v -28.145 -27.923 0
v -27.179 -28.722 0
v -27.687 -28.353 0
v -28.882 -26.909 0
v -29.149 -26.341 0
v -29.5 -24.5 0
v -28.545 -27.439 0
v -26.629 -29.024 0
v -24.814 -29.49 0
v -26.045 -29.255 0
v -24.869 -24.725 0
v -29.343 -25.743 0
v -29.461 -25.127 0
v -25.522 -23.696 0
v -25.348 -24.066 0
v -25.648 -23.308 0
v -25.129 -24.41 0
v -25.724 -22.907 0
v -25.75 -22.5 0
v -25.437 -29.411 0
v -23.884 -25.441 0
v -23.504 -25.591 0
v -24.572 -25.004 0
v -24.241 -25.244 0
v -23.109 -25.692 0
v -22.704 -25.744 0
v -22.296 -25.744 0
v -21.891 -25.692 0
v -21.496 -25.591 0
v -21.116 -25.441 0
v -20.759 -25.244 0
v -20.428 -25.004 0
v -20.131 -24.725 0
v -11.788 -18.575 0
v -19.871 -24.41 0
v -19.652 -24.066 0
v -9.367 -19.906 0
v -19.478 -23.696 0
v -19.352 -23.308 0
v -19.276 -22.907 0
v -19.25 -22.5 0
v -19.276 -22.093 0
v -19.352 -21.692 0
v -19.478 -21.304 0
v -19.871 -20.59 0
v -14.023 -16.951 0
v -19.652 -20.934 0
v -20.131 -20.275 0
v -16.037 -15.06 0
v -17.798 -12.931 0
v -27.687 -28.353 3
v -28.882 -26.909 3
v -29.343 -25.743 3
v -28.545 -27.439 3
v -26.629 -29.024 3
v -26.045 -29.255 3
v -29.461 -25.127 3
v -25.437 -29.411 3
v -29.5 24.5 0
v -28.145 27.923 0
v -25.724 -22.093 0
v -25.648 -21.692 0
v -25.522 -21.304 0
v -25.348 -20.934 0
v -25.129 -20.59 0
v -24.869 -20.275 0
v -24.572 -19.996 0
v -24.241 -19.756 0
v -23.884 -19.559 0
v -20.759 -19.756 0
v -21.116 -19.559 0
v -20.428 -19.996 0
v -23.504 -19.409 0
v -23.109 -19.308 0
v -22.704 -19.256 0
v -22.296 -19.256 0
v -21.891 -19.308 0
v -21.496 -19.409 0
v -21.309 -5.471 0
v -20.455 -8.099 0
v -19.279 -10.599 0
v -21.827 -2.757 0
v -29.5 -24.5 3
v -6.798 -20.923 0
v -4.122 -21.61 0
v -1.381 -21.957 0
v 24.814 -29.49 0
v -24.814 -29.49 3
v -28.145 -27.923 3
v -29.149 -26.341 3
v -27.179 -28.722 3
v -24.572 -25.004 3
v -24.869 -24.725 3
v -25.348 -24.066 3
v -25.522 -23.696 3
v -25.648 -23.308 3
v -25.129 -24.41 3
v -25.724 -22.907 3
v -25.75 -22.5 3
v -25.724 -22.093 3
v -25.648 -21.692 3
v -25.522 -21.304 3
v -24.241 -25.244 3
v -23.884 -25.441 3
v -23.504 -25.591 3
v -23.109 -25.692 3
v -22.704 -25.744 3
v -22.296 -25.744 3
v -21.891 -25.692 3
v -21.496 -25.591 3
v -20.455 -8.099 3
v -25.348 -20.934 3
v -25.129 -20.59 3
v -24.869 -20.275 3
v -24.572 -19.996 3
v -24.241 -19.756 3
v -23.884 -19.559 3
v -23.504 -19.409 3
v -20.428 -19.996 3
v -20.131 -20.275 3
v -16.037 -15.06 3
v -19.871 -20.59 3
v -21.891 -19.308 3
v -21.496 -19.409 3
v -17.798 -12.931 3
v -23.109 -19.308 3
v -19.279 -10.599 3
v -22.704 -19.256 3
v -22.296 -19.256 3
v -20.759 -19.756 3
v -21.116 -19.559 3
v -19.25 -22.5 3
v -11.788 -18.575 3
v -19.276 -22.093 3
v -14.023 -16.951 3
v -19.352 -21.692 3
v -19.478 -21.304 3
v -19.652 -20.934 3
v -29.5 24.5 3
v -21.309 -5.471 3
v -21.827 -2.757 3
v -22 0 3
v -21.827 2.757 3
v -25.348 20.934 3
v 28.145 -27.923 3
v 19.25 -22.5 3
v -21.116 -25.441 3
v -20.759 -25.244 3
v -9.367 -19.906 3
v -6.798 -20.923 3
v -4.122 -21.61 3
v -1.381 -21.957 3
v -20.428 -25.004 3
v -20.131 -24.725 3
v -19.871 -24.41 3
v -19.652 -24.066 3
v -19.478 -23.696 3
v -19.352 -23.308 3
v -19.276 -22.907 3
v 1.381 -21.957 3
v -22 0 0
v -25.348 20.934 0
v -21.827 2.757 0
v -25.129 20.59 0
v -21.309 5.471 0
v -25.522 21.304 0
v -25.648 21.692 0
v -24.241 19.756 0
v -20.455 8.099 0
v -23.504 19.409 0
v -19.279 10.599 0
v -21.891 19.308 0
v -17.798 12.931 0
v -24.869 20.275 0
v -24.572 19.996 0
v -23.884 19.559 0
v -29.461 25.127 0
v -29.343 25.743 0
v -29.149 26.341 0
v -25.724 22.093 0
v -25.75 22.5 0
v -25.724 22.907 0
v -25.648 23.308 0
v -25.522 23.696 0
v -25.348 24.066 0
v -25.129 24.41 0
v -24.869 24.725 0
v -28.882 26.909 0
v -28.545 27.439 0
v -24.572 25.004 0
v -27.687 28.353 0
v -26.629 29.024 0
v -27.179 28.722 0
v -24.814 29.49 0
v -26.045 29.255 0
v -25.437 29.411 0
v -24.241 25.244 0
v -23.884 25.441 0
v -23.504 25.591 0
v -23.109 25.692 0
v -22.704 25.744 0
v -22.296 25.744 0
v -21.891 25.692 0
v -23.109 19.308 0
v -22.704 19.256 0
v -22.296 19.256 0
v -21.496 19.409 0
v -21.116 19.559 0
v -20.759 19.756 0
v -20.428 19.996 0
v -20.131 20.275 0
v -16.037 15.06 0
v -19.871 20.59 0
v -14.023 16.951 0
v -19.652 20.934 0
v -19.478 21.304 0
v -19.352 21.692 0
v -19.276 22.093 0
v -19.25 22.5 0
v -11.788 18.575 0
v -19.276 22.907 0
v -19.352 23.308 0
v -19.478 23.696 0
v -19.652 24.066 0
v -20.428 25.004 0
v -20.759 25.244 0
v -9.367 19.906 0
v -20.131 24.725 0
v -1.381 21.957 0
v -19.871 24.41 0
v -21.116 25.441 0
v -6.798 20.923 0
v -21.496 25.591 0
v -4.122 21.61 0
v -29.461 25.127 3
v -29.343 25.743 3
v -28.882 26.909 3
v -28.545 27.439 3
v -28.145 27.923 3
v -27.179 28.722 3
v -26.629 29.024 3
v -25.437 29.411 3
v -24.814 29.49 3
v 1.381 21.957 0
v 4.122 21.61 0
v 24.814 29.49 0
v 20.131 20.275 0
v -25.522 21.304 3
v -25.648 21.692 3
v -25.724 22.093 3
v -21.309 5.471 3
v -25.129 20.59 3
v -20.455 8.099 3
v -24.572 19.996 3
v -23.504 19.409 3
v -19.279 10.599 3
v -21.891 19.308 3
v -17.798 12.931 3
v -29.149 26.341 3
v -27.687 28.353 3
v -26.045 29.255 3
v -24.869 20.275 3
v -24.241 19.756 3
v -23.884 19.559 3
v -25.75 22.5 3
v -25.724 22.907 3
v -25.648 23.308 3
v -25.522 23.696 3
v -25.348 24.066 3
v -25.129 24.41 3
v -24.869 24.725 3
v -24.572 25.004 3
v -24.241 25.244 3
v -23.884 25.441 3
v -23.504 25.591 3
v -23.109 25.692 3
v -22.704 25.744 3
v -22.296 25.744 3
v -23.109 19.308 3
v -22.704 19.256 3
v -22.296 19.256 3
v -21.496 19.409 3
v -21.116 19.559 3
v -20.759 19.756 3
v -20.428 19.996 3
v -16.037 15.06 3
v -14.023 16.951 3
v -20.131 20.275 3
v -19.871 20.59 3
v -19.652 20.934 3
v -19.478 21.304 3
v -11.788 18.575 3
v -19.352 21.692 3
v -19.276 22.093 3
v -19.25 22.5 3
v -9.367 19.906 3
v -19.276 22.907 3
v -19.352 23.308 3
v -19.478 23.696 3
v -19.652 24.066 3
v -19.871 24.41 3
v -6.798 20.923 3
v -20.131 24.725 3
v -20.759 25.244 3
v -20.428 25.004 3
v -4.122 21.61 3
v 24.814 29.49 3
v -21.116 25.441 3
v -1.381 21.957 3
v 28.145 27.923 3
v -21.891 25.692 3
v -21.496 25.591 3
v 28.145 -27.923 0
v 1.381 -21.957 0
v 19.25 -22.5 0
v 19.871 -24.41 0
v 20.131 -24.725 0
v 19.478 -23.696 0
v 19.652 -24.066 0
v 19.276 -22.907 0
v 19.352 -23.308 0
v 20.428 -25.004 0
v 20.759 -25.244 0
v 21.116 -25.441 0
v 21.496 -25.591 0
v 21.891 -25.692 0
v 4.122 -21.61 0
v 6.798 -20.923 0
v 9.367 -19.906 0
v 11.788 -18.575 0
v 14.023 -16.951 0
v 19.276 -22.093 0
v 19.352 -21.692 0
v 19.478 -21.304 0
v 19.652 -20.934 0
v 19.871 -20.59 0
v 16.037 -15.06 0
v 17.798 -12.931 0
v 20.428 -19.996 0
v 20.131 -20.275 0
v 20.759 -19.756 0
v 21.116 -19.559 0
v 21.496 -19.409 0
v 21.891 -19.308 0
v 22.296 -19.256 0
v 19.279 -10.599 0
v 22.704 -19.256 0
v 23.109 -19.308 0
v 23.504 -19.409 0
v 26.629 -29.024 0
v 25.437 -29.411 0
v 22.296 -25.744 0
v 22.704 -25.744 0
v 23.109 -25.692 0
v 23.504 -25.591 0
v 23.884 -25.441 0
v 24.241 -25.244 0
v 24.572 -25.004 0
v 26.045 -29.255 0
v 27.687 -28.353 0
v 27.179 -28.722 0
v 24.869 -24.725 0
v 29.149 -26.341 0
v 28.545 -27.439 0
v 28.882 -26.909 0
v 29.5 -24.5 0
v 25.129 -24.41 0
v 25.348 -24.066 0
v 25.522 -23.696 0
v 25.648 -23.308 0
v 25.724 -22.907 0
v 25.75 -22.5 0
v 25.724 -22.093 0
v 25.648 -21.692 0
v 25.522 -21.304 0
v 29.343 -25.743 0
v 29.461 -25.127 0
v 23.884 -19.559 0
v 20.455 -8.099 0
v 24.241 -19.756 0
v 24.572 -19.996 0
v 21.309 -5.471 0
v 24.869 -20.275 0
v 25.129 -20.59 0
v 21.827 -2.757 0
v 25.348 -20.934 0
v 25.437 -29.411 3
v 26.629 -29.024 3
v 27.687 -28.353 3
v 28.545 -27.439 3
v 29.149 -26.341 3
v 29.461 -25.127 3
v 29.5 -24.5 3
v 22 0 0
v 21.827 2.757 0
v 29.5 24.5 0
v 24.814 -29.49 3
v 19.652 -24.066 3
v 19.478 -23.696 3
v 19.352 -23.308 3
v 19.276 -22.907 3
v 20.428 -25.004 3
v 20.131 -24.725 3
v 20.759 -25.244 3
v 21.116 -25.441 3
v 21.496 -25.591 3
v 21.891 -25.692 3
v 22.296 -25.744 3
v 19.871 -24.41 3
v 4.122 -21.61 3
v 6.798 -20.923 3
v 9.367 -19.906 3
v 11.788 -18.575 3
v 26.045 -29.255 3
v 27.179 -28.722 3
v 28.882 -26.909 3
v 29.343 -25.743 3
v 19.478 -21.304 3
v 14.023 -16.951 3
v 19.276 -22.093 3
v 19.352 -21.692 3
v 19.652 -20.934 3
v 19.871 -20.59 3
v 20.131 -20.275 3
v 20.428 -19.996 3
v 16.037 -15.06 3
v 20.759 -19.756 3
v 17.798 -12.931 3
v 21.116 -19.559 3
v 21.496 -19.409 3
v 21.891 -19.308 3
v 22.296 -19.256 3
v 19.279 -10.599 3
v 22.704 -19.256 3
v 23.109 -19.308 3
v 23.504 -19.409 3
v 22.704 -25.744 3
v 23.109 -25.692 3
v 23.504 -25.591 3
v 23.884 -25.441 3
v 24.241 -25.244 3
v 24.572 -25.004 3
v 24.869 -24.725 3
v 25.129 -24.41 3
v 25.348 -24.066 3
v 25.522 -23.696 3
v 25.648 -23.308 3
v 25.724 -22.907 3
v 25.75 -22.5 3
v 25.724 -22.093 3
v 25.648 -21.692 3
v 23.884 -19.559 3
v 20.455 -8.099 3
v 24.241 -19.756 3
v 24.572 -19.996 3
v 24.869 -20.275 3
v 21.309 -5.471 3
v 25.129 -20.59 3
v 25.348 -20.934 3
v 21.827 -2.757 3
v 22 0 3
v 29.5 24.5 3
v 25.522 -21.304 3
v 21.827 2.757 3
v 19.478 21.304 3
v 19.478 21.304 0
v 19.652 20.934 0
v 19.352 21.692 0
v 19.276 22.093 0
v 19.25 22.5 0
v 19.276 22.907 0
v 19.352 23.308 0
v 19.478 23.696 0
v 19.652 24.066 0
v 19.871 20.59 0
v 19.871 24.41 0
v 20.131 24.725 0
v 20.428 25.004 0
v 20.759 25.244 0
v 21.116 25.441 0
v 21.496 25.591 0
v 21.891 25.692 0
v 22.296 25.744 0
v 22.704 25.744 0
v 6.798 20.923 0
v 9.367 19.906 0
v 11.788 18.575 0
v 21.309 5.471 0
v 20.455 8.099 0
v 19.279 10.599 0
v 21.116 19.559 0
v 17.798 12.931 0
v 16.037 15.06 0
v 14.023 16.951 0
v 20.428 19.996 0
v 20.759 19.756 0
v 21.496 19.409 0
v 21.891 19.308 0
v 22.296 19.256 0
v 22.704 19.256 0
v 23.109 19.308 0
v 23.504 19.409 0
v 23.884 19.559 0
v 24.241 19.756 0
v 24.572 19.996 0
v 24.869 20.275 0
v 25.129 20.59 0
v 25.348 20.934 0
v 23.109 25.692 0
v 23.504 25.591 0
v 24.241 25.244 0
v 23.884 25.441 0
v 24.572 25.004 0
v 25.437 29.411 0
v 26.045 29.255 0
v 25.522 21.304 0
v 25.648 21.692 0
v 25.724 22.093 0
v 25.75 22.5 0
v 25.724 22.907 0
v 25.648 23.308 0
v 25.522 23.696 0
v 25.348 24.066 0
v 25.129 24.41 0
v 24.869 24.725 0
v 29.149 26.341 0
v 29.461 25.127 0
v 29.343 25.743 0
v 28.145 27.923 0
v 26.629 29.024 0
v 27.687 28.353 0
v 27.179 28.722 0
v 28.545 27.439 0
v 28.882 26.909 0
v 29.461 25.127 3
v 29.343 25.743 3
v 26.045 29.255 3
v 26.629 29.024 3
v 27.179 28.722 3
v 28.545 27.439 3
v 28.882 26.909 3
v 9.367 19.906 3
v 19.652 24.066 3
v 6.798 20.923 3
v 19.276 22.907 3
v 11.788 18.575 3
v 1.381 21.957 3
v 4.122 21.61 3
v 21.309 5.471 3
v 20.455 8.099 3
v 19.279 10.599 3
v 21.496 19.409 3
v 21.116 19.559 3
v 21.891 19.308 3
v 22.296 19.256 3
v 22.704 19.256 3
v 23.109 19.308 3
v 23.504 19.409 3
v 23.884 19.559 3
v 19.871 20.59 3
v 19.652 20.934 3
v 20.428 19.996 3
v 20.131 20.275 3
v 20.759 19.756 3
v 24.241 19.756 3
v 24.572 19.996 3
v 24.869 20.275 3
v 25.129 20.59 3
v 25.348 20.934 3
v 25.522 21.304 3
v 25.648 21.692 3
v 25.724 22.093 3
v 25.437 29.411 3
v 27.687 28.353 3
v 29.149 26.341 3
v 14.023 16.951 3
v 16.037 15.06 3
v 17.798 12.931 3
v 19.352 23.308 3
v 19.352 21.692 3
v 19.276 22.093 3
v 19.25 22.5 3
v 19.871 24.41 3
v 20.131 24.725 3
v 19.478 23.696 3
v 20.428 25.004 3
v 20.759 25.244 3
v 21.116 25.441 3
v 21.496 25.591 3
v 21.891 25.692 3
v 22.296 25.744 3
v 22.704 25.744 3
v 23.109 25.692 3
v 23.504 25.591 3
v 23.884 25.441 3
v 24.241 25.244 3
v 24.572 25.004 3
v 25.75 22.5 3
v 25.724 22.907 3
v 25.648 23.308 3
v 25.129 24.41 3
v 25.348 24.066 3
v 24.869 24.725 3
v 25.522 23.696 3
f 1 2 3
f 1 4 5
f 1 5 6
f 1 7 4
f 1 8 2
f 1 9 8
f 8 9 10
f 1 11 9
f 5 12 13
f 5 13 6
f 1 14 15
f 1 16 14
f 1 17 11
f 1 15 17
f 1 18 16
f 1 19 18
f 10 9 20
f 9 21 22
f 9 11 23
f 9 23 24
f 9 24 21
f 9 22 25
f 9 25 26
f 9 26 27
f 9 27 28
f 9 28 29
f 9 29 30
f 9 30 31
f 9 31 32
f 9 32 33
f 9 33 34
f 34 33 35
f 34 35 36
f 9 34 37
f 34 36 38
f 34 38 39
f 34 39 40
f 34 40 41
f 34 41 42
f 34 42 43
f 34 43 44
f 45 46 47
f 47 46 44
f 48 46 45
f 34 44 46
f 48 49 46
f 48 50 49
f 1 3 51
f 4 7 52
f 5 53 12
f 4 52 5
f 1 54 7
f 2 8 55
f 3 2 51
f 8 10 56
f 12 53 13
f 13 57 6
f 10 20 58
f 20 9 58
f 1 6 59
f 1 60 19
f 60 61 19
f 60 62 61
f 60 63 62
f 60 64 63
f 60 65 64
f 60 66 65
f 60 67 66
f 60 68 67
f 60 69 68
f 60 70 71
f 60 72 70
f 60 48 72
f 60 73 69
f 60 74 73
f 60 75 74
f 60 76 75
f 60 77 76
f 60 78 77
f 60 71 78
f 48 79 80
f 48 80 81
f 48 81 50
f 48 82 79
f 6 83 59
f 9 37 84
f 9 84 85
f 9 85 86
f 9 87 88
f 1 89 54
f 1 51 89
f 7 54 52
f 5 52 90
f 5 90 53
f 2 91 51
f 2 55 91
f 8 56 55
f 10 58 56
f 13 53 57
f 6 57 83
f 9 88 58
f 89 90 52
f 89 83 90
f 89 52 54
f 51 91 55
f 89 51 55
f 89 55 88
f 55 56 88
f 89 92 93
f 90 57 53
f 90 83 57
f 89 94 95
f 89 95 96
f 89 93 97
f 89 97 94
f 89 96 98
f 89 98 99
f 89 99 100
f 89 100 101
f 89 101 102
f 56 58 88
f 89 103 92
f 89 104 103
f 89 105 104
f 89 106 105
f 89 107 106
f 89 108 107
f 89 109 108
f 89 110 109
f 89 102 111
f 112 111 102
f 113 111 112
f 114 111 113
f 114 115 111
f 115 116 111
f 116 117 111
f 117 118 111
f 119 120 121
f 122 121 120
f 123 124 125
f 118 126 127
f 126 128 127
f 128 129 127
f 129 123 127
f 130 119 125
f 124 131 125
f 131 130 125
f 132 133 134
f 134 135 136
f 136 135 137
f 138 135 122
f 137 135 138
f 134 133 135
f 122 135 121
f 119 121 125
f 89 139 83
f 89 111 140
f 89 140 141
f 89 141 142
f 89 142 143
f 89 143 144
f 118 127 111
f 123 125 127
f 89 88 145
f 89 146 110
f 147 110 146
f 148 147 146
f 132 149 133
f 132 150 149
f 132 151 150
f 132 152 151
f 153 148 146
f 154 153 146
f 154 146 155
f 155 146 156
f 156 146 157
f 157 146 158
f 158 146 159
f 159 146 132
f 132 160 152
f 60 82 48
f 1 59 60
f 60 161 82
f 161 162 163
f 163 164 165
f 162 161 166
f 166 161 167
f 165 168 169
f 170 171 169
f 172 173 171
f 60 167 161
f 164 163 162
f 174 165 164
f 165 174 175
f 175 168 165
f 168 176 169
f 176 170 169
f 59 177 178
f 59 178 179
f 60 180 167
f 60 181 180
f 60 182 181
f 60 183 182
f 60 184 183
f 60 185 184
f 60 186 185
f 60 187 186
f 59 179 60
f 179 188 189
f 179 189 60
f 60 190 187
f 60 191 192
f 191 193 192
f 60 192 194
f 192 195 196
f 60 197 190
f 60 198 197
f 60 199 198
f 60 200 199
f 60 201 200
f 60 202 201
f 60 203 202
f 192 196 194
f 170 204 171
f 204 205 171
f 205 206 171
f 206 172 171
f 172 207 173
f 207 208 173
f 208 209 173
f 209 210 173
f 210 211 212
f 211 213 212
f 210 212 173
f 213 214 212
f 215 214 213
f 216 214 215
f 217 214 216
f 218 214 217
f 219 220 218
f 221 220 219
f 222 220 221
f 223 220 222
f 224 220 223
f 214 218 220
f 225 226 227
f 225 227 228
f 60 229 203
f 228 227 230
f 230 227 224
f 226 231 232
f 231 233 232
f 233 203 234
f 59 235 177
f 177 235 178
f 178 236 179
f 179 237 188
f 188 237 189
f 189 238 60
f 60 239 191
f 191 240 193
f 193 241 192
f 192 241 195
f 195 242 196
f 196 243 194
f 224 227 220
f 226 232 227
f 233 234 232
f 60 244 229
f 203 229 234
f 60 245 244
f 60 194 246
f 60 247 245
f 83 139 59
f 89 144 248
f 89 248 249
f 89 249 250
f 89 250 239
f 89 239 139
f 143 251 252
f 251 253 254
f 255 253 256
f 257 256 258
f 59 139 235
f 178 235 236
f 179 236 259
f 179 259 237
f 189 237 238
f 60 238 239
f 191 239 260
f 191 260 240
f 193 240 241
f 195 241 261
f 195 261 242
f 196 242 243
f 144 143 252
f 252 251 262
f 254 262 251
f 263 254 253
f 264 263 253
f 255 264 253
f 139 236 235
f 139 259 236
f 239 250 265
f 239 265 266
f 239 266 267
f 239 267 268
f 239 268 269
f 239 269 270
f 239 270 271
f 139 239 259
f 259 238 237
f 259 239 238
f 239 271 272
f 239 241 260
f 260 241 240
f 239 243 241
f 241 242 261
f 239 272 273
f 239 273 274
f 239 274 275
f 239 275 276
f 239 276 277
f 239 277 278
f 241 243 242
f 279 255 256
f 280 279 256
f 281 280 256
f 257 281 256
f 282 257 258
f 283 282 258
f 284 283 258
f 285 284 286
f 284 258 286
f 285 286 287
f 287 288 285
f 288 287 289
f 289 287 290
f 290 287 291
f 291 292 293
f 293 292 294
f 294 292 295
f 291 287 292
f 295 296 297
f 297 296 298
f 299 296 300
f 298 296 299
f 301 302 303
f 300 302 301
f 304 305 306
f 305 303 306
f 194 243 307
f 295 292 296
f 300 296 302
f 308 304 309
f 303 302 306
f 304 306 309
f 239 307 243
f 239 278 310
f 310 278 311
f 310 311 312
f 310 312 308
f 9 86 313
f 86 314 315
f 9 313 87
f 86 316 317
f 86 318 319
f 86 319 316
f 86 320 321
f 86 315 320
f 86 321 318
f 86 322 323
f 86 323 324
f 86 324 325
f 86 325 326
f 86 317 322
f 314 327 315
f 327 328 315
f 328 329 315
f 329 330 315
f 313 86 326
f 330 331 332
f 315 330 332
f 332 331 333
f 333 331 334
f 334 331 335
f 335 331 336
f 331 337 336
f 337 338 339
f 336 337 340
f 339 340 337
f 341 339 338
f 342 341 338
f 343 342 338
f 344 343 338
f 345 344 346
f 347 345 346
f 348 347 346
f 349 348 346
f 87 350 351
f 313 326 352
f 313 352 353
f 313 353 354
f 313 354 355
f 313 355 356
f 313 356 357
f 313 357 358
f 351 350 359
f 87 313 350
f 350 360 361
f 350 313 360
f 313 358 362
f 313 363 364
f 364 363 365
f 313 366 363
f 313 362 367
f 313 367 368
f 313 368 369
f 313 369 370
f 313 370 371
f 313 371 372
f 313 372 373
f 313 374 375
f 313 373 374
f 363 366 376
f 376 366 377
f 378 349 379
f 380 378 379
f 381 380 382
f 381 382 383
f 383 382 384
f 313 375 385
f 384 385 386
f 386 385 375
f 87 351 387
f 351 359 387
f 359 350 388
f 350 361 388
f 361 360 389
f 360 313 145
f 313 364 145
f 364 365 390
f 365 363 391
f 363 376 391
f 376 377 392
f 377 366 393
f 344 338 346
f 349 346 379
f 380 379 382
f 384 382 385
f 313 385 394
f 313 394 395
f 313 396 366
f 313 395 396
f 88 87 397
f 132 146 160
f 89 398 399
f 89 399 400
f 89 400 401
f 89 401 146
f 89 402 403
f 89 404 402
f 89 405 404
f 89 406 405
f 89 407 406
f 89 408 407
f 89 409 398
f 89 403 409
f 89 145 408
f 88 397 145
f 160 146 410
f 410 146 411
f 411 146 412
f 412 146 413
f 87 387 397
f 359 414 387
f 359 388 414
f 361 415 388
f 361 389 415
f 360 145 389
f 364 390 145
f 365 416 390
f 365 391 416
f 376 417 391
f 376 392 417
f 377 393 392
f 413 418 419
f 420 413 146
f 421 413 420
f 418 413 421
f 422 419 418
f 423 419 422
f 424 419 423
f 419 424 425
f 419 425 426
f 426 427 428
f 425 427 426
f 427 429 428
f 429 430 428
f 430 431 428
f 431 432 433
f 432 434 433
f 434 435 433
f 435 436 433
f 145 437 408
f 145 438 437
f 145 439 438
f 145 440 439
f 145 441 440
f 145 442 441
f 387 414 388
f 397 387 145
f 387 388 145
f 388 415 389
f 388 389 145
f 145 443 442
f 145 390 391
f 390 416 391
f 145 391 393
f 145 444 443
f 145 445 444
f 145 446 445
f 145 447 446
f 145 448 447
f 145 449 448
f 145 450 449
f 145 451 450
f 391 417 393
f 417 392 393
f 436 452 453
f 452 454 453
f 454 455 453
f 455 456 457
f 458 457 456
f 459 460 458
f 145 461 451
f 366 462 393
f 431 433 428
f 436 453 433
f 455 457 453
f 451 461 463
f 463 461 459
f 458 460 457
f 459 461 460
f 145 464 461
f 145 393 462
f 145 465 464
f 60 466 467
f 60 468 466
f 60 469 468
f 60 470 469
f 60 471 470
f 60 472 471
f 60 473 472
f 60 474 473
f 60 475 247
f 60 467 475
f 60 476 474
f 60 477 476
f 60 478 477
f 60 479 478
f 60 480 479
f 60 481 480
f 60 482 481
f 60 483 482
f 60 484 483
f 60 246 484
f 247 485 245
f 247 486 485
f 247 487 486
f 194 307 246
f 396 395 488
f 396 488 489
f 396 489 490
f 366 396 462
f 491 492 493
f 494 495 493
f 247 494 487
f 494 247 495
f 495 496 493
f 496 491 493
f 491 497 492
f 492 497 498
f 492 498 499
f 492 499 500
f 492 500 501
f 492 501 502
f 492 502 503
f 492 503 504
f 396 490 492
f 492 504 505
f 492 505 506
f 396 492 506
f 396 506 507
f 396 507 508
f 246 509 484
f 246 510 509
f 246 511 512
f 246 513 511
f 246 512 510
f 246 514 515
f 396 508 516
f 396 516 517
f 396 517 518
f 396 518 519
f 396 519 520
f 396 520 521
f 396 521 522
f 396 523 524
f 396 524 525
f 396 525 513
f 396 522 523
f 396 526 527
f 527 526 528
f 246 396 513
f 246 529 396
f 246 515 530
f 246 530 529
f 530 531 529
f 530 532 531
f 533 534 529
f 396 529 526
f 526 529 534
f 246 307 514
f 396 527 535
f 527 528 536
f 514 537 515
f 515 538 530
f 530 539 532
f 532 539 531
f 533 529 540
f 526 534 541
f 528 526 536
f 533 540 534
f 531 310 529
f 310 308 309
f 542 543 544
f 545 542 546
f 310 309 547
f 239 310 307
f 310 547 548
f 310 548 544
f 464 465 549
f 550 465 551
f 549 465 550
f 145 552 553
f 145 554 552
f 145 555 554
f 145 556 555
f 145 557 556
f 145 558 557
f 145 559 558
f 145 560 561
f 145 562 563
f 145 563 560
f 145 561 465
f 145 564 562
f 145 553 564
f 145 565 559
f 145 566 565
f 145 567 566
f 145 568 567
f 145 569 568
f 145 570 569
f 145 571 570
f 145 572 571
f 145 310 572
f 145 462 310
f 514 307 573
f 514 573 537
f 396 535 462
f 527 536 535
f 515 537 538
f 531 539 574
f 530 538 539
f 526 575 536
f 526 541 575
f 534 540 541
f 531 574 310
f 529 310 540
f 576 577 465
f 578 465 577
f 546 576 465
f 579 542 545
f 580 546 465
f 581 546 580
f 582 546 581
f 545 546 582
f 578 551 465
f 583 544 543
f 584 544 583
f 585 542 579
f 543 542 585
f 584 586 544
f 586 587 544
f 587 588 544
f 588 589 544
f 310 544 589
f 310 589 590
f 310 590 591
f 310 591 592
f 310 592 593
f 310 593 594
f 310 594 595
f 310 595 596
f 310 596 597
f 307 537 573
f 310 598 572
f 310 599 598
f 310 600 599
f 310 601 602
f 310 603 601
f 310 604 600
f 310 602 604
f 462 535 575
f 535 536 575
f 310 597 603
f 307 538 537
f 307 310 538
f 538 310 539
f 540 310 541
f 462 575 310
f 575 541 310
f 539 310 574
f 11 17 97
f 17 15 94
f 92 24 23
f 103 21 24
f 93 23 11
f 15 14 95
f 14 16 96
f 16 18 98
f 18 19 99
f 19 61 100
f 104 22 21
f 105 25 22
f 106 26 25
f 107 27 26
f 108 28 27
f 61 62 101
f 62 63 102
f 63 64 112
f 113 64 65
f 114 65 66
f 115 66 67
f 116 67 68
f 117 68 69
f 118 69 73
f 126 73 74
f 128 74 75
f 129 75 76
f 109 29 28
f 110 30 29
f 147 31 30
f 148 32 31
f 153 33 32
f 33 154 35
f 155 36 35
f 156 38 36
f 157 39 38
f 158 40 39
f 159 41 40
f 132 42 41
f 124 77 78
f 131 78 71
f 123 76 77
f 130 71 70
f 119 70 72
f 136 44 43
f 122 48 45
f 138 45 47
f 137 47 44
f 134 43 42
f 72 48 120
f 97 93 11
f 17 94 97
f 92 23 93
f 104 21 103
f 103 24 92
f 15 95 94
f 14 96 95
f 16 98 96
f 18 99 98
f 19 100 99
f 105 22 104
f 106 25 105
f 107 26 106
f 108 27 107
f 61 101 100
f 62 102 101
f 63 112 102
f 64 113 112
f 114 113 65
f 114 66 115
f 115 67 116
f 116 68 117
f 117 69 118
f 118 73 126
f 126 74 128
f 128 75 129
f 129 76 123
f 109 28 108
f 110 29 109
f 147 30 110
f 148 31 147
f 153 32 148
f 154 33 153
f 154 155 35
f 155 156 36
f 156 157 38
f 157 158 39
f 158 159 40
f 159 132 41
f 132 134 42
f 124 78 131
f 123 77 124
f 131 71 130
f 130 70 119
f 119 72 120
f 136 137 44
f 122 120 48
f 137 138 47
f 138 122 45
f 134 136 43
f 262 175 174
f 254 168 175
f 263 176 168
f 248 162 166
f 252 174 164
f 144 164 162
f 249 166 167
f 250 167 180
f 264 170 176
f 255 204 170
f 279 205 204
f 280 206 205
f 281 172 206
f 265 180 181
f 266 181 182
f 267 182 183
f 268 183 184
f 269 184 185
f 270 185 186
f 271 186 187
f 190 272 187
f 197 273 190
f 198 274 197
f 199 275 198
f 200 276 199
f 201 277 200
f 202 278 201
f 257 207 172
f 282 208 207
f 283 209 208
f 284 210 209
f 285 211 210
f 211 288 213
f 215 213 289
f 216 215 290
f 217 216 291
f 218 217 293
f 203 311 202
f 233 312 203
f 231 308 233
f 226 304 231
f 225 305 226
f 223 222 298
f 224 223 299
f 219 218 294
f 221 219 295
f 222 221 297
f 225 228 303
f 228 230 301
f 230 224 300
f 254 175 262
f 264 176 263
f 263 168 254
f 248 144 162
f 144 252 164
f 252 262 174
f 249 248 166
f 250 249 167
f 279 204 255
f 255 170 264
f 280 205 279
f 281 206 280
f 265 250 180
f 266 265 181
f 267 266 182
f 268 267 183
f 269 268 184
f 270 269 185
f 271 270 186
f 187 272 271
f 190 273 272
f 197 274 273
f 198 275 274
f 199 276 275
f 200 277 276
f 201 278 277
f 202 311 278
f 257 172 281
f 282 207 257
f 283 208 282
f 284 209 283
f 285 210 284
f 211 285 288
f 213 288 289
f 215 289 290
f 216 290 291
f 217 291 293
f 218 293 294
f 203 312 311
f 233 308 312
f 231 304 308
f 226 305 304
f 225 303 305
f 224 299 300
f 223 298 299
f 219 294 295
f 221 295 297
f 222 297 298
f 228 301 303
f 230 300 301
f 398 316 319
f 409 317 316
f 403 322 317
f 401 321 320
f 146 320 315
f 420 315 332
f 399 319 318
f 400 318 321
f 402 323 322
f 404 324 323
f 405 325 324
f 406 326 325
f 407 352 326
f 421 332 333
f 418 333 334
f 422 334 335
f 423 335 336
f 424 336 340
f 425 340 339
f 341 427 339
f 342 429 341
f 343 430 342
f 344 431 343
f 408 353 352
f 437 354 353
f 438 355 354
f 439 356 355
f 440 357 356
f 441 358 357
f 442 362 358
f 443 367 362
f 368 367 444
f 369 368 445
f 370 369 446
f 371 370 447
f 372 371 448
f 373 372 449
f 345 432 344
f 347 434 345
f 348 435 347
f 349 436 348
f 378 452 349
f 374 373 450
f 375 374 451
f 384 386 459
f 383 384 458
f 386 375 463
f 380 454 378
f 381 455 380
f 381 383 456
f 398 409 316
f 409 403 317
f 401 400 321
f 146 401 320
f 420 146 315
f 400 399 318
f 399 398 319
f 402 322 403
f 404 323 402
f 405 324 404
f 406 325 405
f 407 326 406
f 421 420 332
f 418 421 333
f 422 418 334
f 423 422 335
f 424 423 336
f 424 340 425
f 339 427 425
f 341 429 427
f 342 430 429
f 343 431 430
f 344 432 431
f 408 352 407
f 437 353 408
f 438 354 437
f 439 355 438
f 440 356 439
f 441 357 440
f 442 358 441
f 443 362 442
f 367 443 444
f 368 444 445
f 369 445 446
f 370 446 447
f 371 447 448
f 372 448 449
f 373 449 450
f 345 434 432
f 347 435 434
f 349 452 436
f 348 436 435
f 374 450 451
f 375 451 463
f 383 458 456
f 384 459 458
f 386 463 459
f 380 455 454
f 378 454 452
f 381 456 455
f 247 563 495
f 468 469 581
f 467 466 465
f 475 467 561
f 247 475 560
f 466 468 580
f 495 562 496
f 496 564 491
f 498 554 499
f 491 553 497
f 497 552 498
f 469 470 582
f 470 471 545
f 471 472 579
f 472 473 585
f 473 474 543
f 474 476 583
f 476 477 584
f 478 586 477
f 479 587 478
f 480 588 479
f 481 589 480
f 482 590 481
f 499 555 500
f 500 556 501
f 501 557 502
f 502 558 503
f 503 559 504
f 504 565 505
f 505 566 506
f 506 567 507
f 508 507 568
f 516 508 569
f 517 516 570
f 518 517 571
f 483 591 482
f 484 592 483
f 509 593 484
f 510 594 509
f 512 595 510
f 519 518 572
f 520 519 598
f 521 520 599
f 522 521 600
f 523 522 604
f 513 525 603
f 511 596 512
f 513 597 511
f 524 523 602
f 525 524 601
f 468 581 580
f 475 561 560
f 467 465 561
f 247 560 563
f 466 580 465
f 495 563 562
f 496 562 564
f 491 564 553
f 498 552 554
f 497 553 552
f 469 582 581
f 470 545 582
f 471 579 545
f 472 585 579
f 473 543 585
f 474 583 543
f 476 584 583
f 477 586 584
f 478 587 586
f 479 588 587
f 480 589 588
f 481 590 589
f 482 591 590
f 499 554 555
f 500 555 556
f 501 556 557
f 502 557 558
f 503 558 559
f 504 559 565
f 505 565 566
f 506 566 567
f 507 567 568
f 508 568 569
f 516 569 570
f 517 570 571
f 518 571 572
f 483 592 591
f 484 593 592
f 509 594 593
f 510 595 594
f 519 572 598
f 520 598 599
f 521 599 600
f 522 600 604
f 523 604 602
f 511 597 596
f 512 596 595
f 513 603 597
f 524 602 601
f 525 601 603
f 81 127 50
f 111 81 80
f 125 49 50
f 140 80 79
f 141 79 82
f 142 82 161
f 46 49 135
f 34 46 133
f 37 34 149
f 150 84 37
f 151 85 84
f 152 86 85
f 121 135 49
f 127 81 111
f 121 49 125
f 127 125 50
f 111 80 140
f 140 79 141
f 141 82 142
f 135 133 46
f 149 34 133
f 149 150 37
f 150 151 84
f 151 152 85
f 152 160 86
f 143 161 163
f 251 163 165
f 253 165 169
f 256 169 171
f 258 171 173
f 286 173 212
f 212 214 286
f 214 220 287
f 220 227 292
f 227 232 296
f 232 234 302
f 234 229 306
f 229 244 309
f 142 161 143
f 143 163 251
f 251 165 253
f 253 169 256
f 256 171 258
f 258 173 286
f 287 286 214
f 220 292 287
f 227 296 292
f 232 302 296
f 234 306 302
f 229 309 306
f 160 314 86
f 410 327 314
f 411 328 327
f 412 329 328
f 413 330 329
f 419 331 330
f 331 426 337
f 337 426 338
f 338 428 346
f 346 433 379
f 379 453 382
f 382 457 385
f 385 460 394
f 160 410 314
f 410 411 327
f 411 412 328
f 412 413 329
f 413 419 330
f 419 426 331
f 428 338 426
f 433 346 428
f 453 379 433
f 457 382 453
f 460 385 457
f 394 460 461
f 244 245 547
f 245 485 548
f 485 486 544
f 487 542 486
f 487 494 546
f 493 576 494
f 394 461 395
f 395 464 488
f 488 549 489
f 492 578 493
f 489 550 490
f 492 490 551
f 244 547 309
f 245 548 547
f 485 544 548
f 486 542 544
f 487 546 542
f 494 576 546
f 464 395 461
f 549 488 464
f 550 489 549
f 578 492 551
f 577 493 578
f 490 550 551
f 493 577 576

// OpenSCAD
$fn = 50;

difference() {
	union() {
		hull() {
			translate(v = [-24.5, 24.5, 0]) {
				cylinder(h = 3, r = 5);
			}
			translate(v = [24.5, 24.5, 0]) {
				cylinder(h = 3, r = 5);
			}
			translate(v = [-24.5, -24.5, 0]) {
				cylinder(h = 3, r = 5);
			}
			translate(v = [24.5, -24.5, 0]) {
				cylinder(h = 3, r = 5);
			}
		}
	}
	union() {
		translate(v = [-22.5, -22.5, -100.0]) {
			cylinder(h = 200, r = 3.25);
		}
		translate(v = [-22.5, 22.5, -100.0]) {
			cylinder(h = 200, r = 3.25);
		}
		translate(v = [22.5, -22.5, -100.0]) {
			cylinder(h = 200, r = 3.25);
		}
		translate(v = [22.5, 22.5, -100.0]) {
			cylinder(h = 200, r = 3.25);
		}
		translate(v = [-22.5, -22.5, -100.0]) {
			cylinder(h = 200, r = 1.8);
		}
		translate(v = [-22.5, 22.5, -100.0]) {
			cylinder(h = 200, r = 1.8);
		}
		translate(v = [22.5, -22.5, -100.0]) {
			cylinder(h = 200, r = 1.8);
		}
		translate(v = [22.5, 22.5, -100.0]) {
			cylinder(h = 200, r = 1.8);
		}
		cylinder(h = 3, r = 22.0);
	}
}
